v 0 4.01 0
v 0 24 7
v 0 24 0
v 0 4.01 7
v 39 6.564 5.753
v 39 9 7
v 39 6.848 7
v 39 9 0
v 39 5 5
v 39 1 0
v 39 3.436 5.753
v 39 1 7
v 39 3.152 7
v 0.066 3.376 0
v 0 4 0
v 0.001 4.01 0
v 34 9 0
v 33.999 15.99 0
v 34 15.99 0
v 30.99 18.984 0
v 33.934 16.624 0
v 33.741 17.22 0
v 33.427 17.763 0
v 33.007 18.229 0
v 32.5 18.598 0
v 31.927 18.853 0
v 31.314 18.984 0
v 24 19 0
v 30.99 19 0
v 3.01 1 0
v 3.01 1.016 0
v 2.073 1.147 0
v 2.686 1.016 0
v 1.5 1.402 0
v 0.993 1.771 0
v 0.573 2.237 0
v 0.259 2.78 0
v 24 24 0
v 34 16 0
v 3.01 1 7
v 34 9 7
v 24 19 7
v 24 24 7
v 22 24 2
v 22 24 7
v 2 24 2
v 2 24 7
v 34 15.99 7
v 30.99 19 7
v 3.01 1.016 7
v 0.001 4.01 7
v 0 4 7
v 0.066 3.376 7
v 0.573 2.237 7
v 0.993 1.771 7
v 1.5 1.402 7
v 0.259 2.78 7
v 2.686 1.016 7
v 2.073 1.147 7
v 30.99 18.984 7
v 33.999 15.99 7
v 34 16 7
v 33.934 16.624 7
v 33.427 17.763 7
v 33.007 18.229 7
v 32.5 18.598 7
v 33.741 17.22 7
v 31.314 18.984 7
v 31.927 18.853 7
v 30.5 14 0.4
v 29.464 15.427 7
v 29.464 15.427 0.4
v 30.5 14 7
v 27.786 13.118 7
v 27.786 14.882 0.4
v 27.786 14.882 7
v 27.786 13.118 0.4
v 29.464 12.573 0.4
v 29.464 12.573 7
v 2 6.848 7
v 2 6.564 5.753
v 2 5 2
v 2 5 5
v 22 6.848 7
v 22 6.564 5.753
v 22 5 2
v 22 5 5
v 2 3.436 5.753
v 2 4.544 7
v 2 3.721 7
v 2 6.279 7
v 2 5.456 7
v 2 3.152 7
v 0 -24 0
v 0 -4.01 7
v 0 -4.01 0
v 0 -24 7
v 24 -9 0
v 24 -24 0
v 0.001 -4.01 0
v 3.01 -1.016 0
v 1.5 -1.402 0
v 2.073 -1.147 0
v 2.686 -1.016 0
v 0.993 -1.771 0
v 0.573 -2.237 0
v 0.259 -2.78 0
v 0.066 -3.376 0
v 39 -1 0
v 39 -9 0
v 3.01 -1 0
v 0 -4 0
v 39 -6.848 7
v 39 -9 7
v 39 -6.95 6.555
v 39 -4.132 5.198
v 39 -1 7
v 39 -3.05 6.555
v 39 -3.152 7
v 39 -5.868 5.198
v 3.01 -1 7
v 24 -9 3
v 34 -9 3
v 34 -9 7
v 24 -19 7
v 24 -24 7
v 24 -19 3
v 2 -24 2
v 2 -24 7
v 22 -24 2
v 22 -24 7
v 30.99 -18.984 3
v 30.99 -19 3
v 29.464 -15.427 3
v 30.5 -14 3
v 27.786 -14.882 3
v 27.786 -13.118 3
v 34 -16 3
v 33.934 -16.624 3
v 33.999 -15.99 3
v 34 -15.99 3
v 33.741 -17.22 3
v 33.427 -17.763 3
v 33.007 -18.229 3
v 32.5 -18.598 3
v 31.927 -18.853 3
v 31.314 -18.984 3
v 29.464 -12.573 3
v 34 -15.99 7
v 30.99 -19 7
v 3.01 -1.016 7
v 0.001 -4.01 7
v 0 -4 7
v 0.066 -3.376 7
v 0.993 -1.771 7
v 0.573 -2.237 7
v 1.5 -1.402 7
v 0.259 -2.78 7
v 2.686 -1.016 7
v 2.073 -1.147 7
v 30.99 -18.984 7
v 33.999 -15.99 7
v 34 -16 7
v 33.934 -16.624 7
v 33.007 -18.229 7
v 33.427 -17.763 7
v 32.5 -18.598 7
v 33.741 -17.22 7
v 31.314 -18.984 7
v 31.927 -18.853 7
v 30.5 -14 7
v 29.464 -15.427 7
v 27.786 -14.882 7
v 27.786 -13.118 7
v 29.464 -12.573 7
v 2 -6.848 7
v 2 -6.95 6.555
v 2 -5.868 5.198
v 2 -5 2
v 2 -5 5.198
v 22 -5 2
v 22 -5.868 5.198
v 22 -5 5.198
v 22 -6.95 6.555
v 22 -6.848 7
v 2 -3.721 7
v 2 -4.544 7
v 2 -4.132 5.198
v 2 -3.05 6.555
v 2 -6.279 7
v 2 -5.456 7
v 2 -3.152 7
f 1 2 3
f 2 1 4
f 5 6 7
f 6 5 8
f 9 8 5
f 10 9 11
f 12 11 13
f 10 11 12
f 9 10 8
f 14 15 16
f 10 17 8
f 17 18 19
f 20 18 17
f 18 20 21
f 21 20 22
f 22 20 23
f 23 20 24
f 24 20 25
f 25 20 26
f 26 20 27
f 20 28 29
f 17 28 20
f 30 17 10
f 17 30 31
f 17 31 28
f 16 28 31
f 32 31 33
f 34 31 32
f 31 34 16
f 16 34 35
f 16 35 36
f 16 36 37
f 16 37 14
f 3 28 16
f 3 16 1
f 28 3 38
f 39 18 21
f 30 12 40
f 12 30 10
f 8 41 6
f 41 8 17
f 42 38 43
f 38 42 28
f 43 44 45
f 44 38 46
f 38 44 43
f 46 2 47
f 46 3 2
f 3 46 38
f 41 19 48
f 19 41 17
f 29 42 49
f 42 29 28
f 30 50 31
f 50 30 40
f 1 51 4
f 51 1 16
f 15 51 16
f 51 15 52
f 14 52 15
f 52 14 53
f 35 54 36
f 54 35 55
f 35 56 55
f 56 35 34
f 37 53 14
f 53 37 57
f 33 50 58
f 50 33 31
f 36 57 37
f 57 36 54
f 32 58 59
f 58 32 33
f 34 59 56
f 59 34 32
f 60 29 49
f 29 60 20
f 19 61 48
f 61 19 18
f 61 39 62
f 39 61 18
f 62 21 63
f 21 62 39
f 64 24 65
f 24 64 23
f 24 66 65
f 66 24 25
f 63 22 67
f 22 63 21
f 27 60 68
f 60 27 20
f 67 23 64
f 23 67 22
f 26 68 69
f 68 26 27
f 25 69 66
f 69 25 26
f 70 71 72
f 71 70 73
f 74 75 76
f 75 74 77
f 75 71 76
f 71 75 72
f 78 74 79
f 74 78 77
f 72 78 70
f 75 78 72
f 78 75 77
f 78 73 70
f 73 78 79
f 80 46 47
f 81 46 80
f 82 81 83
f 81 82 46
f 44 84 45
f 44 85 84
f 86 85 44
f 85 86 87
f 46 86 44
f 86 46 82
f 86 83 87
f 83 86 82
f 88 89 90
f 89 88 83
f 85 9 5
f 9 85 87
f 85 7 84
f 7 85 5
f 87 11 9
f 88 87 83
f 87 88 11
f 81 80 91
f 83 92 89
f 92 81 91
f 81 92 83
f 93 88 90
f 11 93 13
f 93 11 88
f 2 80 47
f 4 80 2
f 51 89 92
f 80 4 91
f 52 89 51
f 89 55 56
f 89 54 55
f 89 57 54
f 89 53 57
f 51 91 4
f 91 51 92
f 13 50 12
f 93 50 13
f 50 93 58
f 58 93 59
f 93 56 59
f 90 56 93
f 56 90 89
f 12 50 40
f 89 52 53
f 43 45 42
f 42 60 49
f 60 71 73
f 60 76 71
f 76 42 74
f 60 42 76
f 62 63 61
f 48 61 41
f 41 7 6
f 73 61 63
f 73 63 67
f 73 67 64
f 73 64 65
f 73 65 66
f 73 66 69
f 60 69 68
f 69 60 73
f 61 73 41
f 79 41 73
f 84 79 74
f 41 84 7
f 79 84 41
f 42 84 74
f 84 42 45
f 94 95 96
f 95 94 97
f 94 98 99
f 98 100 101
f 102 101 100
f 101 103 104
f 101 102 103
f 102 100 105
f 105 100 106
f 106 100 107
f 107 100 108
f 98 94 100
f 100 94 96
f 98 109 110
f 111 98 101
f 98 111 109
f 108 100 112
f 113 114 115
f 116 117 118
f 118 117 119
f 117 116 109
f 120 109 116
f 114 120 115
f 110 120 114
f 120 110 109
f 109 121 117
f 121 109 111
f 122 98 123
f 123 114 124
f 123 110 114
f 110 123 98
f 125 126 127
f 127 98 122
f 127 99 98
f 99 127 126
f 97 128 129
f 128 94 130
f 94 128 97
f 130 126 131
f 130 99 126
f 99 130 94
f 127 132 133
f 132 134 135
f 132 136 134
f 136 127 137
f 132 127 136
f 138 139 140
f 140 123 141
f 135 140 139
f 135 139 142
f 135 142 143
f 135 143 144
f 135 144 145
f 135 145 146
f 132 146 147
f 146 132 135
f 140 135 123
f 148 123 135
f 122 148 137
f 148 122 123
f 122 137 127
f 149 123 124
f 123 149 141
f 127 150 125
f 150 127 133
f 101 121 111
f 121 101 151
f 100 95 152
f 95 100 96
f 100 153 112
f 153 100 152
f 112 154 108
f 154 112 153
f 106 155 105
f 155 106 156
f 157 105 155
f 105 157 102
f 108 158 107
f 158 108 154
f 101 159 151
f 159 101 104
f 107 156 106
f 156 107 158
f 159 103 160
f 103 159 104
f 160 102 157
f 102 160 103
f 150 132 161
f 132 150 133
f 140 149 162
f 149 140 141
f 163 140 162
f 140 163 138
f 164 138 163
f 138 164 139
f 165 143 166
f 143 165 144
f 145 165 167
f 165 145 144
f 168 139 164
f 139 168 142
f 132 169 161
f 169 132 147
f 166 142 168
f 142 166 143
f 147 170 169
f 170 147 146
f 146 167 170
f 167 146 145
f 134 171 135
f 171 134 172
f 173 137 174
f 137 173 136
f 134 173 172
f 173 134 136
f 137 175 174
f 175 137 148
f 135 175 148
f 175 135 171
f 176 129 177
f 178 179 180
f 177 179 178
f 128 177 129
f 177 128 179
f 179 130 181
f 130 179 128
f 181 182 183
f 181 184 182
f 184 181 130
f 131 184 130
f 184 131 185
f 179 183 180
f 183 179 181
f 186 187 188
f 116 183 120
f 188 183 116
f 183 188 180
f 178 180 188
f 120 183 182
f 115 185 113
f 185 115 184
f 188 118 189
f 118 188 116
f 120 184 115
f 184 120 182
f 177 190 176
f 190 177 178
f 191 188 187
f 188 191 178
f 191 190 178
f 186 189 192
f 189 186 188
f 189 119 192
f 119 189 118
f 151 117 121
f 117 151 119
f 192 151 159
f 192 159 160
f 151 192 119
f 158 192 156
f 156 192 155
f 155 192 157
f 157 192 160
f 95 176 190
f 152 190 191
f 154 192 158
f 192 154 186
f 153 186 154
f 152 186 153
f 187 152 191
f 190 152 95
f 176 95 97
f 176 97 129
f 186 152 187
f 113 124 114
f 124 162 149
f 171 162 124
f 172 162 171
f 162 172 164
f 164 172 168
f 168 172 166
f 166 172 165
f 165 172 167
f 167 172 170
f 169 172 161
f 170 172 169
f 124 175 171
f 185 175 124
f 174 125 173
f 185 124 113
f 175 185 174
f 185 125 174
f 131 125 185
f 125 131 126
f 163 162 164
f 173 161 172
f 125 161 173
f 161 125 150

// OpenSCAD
// file: lib/CornerCutout.scad
/**
 * CorerCutout.scad
 * v0.1.1
 *
 * Copyright (c) 2015 Ethan Smith
 *
 * This work is licensed under a Creative Commons Attribution-ShareAlike
 * 4.0 International License http://creativecommons.org/licenses/by-sa/4.0/
 */


/**
 * Constants for corner direction
 */
CORNER_SW = 0;
CORNER_SE = 1;
CORNER_NW = 2;
CORNER_NE = 3;

/**
 * Generates a model used to trim off the corner of an object
 *
 * @param direction - direction to trim
 * @param thickness - thickness of the object to trim
 * @param radius - radius of the corner
 */
module CornerCutout(direction = 0, thickness = 10, radius = 4, extra = 0.4, cutin = 0.01, smooth=30, cylinderExtra = 0) {
   rotate([0,0,direction*90]) difference() {
      translate([-extra,-extra, -extra*2]) cube([radius+extra+cutin, radius+extra+cutin, thickness+extra*4]);
      translate([radius, radius, -extra-cylinderExtra/2]) cylinder(thickness+extra*2+cylinderExtra, radius, radius, $fn=smooth);
   }
}
// main file
include <lib/CornerCutout.scad>

usbWidth = 20;
usbHeight = 10;
cableDiameter = 4;

boltDiameter = 3;
boltHeadDiameter = 10;
boltHeadThickness = 3;
boltHoleBacking = 0.4;

cableSupportLength = 5;
usbSupportLength = 5;
wallThickness = 2;
cornerRadius = 3;

width = cableSupportLength + boltHeadDiameter + wallThickness + usbWidth + wallThickness;
length = wallThickness + cableDiameter + wallThickness + boltHeadDiameter + usbSupportLength;
thickness = wallThickness + usbHeight + wallThickness;

// preview();
printPlate();

module preview() {
   BottomRelief();
   translate([ 0, 0, 3]) TopRelief();

   translate([ -width - 5, 0]) printPlate();
}

module printPlate() {
   translate([ 0, 1 ])
      BottomRelief();
   translate([ 0, -1, thickness])
      rotate([ 180, 0 ])
      TopRelief();
}

module TopRelief() {
   difference() {
      StrainRelief();
      translate([ -1, -1, -1 ])
         cube([ width + 2, length + 2, thickness / 2 + 1 ]);
   }
}

module BottomRelief() {
   difference() {
      StrainRelief();
      translate([ -1, -1, thickness / 2 ])
         cube([ width + 2, length + 2, thickness / 2 + 1 ]);
   }
}

module StrainRelief() {
   difference() {
      union() {
         cube([ width, wallThickness + cableDiameter + wallThickness, thickness ]);
         cube([ wallThickness + usbWidth + wallThickness, length, thickness ]);
         cube([
            wallThickness + usbWidth + wallThickness + boltHeadDiameter,
            wallThickness + cableDiameter + wallThickness + boltHeadDiameter,
            thickness - boltHeadThickness
         ]);
      }
      CornerCutout(0, thickness, cornerRadius);
      translate([
         wallThickness + usbWidth + wallThickness + boltHeadDiameter,
         wallThickness + cableDiameter + wallThickness + boltHeadDiameter
      ]) CornerCutout(2, thickness, cornerRadius);
      translate([
         wallThickness + usbWidth + wallThickness + boltHeadDiameter / 2,
         wallThickness + cableDiameter + wallThickness + boltHeadDiameter / 2,
         boltHoleBacking
      ]) cylinder(thickness + 1, boltDiameter / 2, boltDiameter / 2);
      translate([ wallThickness, wallThickness + cableDiameter / 2, wallThickness ]) cube([
         usbWidth,
         cableDiameter / 2 + wallThickness + boltHeadDiameter + usbSupportLength + 1,
         usbHeight
      ]);
      translate([ wallThickness, wallThickness + cableDiameter / 2, thickness / 2 ])
         rotate([ 0, 90 ])
         cylinder(
            width - wallThickness + 1,
            cableDiameter / 2,
            cableDiameter / 2
         );
   }
}
